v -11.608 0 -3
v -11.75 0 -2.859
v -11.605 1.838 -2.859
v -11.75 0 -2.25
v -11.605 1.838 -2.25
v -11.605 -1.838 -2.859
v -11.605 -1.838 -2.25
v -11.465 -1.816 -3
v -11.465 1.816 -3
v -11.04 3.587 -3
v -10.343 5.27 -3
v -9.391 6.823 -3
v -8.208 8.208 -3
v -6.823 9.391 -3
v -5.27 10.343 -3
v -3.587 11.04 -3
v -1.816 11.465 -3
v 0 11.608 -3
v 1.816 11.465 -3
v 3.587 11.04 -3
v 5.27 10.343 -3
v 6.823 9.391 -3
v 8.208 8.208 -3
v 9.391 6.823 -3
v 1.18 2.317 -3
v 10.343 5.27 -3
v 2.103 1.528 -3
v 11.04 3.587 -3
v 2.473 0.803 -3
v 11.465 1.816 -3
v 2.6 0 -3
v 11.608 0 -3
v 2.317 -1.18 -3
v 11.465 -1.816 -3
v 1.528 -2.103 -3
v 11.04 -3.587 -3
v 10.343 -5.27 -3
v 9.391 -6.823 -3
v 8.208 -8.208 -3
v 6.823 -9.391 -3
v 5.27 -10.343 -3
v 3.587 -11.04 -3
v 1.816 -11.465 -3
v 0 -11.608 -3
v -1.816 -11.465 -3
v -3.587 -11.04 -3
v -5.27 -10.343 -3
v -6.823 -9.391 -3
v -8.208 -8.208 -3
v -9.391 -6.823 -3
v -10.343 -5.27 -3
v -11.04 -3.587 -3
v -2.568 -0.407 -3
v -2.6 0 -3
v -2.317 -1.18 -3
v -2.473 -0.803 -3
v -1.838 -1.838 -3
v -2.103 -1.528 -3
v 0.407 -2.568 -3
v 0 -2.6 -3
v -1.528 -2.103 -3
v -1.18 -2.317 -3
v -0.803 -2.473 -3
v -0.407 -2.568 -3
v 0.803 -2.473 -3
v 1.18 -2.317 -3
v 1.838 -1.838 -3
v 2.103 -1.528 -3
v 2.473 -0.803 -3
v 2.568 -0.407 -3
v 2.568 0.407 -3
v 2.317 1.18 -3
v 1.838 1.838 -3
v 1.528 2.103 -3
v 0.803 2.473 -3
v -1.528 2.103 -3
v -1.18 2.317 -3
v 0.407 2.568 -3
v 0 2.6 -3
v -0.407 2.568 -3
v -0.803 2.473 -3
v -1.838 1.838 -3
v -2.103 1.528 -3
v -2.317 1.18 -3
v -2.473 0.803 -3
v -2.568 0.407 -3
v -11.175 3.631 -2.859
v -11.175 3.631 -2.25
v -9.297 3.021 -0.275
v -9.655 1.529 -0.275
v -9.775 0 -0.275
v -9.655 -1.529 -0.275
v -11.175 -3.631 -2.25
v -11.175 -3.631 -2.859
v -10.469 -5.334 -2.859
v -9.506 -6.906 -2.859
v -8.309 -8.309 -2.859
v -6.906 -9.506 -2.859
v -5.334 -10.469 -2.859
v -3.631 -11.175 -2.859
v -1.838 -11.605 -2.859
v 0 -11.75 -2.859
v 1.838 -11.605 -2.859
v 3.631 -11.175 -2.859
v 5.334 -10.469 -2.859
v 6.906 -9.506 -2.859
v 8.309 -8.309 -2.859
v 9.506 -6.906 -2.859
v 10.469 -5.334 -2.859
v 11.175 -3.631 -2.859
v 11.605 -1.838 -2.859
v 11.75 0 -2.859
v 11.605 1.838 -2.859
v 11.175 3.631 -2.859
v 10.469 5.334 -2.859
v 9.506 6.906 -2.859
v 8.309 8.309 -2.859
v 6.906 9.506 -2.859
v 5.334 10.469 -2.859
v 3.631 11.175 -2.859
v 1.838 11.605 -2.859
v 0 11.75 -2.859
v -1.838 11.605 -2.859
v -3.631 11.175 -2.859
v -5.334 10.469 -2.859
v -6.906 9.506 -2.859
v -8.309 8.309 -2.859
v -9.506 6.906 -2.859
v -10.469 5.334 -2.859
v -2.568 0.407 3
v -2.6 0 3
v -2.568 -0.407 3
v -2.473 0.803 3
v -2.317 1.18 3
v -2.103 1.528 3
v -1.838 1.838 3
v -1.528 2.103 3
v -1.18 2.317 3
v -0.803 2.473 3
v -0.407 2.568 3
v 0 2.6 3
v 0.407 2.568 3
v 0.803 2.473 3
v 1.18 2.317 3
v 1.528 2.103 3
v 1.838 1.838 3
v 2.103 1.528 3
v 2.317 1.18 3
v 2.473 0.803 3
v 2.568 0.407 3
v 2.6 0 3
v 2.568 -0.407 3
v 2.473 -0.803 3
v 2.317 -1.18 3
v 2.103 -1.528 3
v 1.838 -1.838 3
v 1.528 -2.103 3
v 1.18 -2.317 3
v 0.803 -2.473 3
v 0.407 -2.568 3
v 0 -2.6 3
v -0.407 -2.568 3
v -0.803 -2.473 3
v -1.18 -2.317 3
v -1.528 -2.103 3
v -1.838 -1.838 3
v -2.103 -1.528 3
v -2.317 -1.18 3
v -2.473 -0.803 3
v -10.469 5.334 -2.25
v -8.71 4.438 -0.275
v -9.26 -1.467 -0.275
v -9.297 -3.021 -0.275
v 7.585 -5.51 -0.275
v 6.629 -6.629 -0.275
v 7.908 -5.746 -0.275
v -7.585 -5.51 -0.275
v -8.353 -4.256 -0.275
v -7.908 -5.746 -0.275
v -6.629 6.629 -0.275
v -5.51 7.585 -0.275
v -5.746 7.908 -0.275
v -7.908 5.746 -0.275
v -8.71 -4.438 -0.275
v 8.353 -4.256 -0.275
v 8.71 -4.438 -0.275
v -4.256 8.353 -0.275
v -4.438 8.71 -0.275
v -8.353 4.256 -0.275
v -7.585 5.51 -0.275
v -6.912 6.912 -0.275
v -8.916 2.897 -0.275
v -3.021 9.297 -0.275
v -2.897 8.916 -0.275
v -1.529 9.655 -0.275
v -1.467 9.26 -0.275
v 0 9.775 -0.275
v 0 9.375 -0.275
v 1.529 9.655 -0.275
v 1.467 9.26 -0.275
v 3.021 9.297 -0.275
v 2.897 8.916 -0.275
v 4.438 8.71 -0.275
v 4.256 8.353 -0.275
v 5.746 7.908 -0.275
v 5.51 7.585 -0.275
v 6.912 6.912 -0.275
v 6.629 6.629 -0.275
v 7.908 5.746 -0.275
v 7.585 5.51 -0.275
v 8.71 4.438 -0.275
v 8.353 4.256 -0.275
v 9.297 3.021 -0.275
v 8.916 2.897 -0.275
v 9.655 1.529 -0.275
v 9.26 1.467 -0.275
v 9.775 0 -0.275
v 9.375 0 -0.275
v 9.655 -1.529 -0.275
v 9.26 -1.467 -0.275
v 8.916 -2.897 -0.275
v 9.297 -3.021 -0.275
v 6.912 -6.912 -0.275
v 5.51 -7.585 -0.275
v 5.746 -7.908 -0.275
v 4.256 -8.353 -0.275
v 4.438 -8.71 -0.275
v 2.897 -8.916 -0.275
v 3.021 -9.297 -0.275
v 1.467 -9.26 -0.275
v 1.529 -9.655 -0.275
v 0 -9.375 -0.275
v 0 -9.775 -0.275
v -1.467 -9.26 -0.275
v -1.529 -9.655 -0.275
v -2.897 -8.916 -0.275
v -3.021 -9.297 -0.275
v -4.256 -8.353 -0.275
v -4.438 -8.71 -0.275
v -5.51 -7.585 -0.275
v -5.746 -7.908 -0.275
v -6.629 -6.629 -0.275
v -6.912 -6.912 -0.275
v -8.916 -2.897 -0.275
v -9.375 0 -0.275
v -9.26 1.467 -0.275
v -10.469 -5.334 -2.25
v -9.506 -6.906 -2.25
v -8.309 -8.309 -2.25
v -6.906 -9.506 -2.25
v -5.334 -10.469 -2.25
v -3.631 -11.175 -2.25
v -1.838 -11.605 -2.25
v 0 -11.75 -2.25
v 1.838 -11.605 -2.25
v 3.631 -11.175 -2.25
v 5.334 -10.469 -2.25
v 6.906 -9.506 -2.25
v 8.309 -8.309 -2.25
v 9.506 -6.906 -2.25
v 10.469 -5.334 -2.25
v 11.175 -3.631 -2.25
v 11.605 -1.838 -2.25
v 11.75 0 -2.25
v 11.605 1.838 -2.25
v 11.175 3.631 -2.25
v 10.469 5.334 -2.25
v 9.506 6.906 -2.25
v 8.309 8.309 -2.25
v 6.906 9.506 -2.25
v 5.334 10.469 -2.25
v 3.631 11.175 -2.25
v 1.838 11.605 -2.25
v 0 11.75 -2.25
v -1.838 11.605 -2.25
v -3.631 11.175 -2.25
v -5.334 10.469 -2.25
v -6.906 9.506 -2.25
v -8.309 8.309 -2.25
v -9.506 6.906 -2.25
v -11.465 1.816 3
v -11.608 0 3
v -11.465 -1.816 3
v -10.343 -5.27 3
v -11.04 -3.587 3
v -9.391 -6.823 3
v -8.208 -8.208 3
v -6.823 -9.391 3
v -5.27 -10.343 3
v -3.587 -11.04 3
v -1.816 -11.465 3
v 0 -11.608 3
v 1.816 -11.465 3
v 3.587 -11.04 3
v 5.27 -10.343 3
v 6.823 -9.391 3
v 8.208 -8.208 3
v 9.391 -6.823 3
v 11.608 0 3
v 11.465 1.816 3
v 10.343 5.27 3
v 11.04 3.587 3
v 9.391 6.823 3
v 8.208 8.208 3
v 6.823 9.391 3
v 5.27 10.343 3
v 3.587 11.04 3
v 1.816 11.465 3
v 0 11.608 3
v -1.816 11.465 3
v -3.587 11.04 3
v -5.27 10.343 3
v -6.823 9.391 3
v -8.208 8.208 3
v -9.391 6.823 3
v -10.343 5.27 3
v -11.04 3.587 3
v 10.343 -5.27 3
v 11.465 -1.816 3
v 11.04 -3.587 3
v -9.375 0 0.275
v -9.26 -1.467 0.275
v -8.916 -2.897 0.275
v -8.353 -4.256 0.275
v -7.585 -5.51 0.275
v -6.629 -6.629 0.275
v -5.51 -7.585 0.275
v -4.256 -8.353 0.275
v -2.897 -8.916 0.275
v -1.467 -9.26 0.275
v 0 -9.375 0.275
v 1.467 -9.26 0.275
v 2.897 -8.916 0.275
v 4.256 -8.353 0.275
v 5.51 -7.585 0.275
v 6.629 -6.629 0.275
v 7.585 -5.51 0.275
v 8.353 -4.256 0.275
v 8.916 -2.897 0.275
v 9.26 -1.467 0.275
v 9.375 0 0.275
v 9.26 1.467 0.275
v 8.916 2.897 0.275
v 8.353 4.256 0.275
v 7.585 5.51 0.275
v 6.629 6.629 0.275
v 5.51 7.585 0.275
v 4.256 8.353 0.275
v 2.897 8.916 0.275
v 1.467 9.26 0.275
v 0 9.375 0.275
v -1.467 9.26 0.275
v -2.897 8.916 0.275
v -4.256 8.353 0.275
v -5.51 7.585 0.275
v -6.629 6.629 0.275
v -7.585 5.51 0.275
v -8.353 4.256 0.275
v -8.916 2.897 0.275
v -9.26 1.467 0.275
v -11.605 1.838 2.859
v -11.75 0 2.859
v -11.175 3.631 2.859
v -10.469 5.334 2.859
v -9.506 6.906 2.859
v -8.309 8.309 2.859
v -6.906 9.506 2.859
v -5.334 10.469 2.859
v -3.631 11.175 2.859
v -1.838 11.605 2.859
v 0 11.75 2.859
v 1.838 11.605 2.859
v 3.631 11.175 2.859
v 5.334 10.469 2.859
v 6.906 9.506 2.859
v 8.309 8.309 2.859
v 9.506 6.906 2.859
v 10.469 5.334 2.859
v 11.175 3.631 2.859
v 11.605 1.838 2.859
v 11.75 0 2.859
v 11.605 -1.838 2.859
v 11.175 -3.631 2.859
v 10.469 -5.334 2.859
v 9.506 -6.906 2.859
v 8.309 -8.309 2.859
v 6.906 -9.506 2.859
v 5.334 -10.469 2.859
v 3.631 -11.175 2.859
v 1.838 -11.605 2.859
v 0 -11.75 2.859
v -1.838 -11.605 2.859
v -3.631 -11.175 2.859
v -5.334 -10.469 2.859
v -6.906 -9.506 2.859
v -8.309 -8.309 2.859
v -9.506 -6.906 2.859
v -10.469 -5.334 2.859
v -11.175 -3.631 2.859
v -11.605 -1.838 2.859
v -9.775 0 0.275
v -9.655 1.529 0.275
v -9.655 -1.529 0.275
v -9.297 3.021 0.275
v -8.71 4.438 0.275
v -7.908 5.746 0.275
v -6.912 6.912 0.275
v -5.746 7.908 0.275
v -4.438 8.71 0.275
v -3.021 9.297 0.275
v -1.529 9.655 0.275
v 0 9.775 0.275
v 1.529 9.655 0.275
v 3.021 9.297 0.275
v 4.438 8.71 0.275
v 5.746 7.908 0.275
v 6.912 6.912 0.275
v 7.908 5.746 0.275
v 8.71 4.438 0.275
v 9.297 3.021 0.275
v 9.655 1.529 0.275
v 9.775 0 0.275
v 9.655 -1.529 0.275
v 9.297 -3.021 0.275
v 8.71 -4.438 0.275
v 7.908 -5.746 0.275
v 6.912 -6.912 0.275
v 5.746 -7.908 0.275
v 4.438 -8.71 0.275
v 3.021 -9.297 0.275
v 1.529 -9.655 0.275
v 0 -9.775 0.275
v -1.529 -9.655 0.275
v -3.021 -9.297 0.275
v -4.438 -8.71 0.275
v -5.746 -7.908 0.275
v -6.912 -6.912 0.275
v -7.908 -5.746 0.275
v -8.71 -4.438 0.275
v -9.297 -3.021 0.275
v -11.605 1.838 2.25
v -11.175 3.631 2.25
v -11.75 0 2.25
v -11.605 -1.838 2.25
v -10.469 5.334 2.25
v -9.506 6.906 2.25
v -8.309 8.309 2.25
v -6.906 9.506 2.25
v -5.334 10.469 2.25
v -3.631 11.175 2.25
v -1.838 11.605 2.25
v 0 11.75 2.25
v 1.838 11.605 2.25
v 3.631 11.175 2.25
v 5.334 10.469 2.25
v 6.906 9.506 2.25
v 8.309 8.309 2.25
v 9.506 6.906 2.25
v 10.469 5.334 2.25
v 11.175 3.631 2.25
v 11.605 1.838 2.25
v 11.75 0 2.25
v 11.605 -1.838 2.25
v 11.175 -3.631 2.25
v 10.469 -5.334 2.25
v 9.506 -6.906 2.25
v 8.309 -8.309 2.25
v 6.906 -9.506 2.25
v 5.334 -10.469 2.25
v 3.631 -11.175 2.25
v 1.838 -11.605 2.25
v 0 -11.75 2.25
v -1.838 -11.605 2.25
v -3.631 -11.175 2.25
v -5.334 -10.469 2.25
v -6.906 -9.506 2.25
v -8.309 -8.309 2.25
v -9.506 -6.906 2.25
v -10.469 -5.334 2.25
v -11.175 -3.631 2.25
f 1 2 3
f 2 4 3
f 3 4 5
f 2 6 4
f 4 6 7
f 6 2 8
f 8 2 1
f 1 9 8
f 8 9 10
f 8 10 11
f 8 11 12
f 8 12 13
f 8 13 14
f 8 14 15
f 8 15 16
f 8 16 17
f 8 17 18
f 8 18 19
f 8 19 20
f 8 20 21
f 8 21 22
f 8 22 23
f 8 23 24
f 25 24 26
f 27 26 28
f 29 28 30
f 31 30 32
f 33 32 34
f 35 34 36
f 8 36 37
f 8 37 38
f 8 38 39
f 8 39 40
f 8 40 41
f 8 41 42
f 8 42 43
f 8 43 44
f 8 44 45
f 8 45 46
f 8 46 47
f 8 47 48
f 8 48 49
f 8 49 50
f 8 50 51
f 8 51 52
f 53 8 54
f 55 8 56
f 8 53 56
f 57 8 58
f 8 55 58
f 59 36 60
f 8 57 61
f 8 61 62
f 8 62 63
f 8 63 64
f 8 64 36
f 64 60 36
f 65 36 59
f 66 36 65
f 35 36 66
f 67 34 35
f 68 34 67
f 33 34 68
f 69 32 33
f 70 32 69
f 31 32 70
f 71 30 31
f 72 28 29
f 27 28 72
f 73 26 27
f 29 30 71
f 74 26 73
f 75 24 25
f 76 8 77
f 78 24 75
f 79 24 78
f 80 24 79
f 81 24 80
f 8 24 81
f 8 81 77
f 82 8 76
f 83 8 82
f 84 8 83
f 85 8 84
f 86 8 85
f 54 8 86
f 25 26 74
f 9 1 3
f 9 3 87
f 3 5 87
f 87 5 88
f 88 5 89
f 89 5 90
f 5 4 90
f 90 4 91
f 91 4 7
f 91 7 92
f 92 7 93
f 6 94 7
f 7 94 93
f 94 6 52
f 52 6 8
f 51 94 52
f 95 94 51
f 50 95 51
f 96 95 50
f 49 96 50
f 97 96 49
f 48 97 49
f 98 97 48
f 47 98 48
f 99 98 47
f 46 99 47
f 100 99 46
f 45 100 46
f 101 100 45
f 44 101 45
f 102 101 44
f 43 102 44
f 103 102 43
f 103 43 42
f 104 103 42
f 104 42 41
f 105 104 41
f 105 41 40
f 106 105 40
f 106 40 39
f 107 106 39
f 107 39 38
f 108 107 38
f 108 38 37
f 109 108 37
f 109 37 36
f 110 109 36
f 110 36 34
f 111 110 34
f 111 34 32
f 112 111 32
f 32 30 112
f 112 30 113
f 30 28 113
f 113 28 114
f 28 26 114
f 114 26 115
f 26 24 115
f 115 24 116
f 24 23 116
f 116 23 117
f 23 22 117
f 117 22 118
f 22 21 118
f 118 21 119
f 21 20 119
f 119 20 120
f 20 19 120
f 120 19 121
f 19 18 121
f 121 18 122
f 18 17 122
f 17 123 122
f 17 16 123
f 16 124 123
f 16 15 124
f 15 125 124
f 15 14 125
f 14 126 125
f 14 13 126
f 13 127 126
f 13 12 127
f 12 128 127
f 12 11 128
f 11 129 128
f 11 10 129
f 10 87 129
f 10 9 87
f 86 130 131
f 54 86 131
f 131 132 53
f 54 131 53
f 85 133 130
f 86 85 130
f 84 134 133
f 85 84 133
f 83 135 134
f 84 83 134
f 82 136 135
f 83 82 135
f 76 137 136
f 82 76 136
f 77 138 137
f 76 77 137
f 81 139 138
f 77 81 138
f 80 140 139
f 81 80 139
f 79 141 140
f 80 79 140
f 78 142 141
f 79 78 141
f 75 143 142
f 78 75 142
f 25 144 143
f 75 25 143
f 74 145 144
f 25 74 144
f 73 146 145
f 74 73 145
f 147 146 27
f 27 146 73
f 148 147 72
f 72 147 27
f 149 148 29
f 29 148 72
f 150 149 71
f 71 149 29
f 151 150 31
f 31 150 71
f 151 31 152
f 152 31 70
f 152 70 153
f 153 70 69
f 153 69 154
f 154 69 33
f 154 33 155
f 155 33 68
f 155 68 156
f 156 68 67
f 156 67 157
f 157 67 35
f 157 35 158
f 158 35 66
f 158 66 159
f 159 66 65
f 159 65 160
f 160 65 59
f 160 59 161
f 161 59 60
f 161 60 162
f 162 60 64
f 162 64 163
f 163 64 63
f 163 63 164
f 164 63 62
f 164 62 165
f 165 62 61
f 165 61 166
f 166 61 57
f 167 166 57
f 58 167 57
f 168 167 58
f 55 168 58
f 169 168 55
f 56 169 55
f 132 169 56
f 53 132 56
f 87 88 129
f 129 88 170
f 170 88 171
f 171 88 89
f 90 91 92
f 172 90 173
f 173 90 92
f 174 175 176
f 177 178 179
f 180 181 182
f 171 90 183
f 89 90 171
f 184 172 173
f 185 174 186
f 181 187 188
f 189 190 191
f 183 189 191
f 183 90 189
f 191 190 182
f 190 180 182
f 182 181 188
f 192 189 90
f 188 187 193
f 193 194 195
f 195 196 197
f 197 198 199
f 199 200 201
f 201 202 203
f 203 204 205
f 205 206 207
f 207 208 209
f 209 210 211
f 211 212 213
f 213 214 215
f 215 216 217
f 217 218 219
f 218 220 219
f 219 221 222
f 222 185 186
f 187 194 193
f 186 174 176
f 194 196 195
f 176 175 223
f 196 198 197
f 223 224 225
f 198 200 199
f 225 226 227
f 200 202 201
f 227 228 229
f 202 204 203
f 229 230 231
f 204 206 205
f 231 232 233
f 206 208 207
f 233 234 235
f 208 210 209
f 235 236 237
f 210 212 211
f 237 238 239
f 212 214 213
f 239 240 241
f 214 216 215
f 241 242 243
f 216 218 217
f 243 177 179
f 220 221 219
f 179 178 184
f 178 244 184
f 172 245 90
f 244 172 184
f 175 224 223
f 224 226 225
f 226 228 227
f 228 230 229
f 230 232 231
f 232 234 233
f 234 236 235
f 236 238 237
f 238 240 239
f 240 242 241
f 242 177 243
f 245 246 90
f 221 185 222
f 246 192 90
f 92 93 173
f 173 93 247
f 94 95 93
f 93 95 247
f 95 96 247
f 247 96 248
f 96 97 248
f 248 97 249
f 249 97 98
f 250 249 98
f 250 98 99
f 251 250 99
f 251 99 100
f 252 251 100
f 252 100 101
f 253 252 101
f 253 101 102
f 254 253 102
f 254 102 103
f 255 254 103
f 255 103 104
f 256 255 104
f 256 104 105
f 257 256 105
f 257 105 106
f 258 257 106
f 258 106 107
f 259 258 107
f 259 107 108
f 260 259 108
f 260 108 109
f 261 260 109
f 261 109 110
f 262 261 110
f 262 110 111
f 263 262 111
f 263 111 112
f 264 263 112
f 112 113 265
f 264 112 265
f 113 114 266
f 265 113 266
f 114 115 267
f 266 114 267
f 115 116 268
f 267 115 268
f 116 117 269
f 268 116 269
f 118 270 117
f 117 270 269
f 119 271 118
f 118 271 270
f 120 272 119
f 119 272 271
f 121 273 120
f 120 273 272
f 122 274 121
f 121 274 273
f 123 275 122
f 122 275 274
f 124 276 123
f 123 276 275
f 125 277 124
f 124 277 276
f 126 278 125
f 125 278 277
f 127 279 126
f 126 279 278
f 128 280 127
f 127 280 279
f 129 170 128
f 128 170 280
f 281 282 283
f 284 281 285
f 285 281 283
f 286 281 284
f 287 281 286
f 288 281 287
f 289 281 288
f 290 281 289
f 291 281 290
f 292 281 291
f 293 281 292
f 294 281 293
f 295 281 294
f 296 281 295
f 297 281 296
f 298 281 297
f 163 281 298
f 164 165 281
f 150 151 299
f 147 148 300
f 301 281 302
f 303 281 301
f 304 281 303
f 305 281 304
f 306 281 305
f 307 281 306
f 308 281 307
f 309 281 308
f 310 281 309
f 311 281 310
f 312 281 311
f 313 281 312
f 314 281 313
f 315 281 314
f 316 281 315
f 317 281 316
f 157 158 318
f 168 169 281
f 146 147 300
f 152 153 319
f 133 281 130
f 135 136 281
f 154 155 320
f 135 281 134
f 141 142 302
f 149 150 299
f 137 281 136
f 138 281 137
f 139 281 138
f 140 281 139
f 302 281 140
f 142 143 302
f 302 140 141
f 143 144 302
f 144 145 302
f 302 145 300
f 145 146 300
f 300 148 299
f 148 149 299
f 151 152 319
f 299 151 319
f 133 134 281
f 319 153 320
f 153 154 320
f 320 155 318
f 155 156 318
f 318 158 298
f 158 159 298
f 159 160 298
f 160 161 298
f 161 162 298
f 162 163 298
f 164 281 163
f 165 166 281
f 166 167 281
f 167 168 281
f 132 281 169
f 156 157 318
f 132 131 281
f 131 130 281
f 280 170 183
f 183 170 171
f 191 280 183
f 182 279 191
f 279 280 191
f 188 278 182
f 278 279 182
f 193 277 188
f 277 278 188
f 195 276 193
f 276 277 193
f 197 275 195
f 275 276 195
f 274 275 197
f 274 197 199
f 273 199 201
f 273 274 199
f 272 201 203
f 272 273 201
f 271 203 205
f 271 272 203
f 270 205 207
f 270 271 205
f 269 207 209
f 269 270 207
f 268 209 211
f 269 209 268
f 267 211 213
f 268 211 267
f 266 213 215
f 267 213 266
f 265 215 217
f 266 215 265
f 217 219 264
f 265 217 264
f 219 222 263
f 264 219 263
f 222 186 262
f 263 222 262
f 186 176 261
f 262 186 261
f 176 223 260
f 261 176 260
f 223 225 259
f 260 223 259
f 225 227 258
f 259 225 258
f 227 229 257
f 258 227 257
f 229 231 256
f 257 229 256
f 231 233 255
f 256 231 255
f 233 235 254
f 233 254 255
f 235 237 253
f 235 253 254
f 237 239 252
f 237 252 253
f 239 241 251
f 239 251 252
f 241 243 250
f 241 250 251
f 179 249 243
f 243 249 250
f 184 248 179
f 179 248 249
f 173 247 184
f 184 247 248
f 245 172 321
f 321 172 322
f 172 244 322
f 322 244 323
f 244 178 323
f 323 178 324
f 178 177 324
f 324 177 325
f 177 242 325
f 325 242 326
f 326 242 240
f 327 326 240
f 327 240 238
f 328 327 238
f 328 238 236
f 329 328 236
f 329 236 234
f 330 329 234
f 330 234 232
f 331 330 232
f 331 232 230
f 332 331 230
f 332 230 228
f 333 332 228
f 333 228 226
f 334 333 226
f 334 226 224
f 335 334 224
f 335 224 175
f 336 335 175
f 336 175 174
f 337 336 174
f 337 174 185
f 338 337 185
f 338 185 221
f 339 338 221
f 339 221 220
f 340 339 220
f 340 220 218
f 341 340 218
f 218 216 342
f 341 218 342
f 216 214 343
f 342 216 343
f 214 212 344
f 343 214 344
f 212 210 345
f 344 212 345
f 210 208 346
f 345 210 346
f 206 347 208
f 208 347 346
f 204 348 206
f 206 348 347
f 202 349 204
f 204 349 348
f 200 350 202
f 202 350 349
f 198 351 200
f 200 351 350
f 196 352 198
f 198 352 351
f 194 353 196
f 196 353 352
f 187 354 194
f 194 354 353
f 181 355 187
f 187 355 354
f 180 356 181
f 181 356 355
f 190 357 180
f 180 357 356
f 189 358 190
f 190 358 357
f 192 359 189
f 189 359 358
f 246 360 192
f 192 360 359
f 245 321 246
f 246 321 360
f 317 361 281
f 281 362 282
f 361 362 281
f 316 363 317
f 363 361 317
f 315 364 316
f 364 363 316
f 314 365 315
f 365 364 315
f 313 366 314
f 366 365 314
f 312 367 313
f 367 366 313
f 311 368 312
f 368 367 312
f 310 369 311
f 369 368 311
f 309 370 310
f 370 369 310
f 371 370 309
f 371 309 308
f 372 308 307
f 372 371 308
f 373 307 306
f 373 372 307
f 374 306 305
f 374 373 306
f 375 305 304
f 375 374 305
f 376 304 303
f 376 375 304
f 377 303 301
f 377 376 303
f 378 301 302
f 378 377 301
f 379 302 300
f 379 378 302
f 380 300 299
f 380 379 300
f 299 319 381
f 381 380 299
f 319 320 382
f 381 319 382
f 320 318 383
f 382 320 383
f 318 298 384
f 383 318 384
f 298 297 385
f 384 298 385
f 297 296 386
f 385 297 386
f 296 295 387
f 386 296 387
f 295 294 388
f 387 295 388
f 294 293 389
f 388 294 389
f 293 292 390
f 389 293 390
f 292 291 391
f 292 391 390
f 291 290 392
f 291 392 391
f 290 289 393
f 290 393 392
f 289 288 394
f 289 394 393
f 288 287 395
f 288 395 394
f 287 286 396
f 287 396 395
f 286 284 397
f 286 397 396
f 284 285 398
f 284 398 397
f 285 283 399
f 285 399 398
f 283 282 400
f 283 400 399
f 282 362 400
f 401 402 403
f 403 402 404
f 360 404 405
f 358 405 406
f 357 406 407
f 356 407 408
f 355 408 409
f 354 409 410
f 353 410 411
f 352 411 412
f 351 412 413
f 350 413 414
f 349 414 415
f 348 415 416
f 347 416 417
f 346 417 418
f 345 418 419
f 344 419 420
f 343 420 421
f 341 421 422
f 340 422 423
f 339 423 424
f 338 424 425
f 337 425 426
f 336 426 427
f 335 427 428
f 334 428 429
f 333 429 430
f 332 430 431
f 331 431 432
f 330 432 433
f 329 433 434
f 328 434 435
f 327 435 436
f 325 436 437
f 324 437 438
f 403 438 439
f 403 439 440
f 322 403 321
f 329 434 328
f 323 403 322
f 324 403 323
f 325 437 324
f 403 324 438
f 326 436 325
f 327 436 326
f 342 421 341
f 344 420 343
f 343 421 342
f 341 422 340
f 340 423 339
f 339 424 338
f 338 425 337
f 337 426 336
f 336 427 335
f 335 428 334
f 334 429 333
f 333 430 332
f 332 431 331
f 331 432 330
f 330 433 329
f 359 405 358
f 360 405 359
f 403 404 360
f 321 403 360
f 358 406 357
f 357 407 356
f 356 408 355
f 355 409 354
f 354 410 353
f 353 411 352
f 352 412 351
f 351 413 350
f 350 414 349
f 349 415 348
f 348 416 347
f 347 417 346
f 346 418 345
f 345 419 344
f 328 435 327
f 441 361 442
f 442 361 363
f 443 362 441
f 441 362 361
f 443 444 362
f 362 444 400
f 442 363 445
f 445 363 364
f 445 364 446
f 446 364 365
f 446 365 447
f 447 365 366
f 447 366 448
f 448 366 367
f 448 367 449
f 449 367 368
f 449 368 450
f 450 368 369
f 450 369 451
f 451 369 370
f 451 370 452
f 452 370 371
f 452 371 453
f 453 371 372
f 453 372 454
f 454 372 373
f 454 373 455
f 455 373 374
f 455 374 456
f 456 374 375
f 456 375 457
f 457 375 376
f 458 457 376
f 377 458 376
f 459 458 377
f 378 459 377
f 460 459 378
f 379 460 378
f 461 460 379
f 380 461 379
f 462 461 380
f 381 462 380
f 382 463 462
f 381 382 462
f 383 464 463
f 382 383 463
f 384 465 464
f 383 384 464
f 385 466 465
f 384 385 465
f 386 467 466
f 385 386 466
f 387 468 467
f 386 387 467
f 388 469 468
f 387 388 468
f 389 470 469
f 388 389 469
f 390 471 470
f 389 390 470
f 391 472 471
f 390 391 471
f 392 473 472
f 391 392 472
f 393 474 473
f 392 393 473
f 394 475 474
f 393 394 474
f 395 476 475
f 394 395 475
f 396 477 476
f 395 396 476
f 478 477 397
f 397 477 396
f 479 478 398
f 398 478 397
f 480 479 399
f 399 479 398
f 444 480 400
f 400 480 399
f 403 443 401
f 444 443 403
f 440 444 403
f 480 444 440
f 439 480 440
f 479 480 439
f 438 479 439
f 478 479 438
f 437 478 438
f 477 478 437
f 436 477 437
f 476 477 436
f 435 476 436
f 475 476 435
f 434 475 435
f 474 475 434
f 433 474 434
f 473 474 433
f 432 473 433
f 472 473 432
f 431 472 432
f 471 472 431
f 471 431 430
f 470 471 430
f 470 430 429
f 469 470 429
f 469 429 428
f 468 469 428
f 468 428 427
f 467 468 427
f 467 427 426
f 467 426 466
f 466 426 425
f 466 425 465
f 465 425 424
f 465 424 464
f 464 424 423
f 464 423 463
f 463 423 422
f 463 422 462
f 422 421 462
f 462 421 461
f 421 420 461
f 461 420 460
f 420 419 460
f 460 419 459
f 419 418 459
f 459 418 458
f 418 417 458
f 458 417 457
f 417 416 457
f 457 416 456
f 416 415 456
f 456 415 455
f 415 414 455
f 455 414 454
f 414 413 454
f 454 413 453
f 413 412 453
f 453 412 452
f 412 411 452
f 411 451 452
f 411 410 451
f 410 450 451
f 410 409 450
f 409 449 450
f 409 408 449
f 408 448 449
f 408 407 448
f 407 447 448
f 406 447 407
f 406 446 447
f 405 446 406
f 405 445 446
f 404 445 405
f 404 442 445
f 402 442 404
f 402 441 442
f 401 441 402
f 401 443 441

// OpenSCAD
// MakerSlide Component 
// http://www.makerslide.com
// b17001_rev_2
// Single Bearing Delrin V Wheel
// Original by Barton Dring
// OpenSCAD model by Mike Sheldrake

union() {
	vwheel(false);
	translate([0,0,-3])	vwheelbearing();
}

module vwheelbearing() { //id=5mm,od=16mm,width=5mm
	color([0.5,0.5,0.5])
	difference() {
		cylinder(r=9,h=6.0,$fn=24);
		translate([0,0,-0.05]) cylinder(r=2.5+0.1,h=7,$fn=40);
		}
	}

module vwheel(withbearing=true) { //MakerSlide.com delrin v wheel
id1=15.9743;
id2=14.8;
od1=23.5;
od2=18.75;
color([0.2,0.2,0.2])
rotate_extrude(convexity = 10,$fn=40)
translate([id1/2, 0, 0])
rotate([0,0,-90])
polygon(points = [
	[3 - 0.3/sqrt(2),0],
	[-2,0],
	[-2,-(id1-id2)/2],
	[-3,-(id1-id2)/2],
	[-3,(od1-id1)/2 - 0.2/sqrt(2)],
	[-3 + 0.2/sqrt(2),(od1-id1)/2],
	[-3 + 0.75,(od1-id1)/2],
	[-0.55/2,   (od1-id1)/2 - (3 - (0.75+(0.55/2)))],
	[-0.55/2,(od2-id1)/2],
	[0.55/2,(od2-id1)/2],
	[0.55/2,   (od1-id1)/2 - (3 - (0.75+(0.55/2)))],
	[3 - 0.75,(od1-id1)/2],
	[3 - 0.2/sqrt(2),(od1-id1)/2],
	[3,(od1-id1)/2 - 0.2/sqrt(2)],
	[3,0.3/sqrt(2)]
	],
	paths = [
	 [0,1,2,3,4,5,6,7,8,9,10,11,12,13,14]
	 ], convexity = 10);

	if (withbearing) {translate([0,0,-3]) vwheelbearing();}

	}
